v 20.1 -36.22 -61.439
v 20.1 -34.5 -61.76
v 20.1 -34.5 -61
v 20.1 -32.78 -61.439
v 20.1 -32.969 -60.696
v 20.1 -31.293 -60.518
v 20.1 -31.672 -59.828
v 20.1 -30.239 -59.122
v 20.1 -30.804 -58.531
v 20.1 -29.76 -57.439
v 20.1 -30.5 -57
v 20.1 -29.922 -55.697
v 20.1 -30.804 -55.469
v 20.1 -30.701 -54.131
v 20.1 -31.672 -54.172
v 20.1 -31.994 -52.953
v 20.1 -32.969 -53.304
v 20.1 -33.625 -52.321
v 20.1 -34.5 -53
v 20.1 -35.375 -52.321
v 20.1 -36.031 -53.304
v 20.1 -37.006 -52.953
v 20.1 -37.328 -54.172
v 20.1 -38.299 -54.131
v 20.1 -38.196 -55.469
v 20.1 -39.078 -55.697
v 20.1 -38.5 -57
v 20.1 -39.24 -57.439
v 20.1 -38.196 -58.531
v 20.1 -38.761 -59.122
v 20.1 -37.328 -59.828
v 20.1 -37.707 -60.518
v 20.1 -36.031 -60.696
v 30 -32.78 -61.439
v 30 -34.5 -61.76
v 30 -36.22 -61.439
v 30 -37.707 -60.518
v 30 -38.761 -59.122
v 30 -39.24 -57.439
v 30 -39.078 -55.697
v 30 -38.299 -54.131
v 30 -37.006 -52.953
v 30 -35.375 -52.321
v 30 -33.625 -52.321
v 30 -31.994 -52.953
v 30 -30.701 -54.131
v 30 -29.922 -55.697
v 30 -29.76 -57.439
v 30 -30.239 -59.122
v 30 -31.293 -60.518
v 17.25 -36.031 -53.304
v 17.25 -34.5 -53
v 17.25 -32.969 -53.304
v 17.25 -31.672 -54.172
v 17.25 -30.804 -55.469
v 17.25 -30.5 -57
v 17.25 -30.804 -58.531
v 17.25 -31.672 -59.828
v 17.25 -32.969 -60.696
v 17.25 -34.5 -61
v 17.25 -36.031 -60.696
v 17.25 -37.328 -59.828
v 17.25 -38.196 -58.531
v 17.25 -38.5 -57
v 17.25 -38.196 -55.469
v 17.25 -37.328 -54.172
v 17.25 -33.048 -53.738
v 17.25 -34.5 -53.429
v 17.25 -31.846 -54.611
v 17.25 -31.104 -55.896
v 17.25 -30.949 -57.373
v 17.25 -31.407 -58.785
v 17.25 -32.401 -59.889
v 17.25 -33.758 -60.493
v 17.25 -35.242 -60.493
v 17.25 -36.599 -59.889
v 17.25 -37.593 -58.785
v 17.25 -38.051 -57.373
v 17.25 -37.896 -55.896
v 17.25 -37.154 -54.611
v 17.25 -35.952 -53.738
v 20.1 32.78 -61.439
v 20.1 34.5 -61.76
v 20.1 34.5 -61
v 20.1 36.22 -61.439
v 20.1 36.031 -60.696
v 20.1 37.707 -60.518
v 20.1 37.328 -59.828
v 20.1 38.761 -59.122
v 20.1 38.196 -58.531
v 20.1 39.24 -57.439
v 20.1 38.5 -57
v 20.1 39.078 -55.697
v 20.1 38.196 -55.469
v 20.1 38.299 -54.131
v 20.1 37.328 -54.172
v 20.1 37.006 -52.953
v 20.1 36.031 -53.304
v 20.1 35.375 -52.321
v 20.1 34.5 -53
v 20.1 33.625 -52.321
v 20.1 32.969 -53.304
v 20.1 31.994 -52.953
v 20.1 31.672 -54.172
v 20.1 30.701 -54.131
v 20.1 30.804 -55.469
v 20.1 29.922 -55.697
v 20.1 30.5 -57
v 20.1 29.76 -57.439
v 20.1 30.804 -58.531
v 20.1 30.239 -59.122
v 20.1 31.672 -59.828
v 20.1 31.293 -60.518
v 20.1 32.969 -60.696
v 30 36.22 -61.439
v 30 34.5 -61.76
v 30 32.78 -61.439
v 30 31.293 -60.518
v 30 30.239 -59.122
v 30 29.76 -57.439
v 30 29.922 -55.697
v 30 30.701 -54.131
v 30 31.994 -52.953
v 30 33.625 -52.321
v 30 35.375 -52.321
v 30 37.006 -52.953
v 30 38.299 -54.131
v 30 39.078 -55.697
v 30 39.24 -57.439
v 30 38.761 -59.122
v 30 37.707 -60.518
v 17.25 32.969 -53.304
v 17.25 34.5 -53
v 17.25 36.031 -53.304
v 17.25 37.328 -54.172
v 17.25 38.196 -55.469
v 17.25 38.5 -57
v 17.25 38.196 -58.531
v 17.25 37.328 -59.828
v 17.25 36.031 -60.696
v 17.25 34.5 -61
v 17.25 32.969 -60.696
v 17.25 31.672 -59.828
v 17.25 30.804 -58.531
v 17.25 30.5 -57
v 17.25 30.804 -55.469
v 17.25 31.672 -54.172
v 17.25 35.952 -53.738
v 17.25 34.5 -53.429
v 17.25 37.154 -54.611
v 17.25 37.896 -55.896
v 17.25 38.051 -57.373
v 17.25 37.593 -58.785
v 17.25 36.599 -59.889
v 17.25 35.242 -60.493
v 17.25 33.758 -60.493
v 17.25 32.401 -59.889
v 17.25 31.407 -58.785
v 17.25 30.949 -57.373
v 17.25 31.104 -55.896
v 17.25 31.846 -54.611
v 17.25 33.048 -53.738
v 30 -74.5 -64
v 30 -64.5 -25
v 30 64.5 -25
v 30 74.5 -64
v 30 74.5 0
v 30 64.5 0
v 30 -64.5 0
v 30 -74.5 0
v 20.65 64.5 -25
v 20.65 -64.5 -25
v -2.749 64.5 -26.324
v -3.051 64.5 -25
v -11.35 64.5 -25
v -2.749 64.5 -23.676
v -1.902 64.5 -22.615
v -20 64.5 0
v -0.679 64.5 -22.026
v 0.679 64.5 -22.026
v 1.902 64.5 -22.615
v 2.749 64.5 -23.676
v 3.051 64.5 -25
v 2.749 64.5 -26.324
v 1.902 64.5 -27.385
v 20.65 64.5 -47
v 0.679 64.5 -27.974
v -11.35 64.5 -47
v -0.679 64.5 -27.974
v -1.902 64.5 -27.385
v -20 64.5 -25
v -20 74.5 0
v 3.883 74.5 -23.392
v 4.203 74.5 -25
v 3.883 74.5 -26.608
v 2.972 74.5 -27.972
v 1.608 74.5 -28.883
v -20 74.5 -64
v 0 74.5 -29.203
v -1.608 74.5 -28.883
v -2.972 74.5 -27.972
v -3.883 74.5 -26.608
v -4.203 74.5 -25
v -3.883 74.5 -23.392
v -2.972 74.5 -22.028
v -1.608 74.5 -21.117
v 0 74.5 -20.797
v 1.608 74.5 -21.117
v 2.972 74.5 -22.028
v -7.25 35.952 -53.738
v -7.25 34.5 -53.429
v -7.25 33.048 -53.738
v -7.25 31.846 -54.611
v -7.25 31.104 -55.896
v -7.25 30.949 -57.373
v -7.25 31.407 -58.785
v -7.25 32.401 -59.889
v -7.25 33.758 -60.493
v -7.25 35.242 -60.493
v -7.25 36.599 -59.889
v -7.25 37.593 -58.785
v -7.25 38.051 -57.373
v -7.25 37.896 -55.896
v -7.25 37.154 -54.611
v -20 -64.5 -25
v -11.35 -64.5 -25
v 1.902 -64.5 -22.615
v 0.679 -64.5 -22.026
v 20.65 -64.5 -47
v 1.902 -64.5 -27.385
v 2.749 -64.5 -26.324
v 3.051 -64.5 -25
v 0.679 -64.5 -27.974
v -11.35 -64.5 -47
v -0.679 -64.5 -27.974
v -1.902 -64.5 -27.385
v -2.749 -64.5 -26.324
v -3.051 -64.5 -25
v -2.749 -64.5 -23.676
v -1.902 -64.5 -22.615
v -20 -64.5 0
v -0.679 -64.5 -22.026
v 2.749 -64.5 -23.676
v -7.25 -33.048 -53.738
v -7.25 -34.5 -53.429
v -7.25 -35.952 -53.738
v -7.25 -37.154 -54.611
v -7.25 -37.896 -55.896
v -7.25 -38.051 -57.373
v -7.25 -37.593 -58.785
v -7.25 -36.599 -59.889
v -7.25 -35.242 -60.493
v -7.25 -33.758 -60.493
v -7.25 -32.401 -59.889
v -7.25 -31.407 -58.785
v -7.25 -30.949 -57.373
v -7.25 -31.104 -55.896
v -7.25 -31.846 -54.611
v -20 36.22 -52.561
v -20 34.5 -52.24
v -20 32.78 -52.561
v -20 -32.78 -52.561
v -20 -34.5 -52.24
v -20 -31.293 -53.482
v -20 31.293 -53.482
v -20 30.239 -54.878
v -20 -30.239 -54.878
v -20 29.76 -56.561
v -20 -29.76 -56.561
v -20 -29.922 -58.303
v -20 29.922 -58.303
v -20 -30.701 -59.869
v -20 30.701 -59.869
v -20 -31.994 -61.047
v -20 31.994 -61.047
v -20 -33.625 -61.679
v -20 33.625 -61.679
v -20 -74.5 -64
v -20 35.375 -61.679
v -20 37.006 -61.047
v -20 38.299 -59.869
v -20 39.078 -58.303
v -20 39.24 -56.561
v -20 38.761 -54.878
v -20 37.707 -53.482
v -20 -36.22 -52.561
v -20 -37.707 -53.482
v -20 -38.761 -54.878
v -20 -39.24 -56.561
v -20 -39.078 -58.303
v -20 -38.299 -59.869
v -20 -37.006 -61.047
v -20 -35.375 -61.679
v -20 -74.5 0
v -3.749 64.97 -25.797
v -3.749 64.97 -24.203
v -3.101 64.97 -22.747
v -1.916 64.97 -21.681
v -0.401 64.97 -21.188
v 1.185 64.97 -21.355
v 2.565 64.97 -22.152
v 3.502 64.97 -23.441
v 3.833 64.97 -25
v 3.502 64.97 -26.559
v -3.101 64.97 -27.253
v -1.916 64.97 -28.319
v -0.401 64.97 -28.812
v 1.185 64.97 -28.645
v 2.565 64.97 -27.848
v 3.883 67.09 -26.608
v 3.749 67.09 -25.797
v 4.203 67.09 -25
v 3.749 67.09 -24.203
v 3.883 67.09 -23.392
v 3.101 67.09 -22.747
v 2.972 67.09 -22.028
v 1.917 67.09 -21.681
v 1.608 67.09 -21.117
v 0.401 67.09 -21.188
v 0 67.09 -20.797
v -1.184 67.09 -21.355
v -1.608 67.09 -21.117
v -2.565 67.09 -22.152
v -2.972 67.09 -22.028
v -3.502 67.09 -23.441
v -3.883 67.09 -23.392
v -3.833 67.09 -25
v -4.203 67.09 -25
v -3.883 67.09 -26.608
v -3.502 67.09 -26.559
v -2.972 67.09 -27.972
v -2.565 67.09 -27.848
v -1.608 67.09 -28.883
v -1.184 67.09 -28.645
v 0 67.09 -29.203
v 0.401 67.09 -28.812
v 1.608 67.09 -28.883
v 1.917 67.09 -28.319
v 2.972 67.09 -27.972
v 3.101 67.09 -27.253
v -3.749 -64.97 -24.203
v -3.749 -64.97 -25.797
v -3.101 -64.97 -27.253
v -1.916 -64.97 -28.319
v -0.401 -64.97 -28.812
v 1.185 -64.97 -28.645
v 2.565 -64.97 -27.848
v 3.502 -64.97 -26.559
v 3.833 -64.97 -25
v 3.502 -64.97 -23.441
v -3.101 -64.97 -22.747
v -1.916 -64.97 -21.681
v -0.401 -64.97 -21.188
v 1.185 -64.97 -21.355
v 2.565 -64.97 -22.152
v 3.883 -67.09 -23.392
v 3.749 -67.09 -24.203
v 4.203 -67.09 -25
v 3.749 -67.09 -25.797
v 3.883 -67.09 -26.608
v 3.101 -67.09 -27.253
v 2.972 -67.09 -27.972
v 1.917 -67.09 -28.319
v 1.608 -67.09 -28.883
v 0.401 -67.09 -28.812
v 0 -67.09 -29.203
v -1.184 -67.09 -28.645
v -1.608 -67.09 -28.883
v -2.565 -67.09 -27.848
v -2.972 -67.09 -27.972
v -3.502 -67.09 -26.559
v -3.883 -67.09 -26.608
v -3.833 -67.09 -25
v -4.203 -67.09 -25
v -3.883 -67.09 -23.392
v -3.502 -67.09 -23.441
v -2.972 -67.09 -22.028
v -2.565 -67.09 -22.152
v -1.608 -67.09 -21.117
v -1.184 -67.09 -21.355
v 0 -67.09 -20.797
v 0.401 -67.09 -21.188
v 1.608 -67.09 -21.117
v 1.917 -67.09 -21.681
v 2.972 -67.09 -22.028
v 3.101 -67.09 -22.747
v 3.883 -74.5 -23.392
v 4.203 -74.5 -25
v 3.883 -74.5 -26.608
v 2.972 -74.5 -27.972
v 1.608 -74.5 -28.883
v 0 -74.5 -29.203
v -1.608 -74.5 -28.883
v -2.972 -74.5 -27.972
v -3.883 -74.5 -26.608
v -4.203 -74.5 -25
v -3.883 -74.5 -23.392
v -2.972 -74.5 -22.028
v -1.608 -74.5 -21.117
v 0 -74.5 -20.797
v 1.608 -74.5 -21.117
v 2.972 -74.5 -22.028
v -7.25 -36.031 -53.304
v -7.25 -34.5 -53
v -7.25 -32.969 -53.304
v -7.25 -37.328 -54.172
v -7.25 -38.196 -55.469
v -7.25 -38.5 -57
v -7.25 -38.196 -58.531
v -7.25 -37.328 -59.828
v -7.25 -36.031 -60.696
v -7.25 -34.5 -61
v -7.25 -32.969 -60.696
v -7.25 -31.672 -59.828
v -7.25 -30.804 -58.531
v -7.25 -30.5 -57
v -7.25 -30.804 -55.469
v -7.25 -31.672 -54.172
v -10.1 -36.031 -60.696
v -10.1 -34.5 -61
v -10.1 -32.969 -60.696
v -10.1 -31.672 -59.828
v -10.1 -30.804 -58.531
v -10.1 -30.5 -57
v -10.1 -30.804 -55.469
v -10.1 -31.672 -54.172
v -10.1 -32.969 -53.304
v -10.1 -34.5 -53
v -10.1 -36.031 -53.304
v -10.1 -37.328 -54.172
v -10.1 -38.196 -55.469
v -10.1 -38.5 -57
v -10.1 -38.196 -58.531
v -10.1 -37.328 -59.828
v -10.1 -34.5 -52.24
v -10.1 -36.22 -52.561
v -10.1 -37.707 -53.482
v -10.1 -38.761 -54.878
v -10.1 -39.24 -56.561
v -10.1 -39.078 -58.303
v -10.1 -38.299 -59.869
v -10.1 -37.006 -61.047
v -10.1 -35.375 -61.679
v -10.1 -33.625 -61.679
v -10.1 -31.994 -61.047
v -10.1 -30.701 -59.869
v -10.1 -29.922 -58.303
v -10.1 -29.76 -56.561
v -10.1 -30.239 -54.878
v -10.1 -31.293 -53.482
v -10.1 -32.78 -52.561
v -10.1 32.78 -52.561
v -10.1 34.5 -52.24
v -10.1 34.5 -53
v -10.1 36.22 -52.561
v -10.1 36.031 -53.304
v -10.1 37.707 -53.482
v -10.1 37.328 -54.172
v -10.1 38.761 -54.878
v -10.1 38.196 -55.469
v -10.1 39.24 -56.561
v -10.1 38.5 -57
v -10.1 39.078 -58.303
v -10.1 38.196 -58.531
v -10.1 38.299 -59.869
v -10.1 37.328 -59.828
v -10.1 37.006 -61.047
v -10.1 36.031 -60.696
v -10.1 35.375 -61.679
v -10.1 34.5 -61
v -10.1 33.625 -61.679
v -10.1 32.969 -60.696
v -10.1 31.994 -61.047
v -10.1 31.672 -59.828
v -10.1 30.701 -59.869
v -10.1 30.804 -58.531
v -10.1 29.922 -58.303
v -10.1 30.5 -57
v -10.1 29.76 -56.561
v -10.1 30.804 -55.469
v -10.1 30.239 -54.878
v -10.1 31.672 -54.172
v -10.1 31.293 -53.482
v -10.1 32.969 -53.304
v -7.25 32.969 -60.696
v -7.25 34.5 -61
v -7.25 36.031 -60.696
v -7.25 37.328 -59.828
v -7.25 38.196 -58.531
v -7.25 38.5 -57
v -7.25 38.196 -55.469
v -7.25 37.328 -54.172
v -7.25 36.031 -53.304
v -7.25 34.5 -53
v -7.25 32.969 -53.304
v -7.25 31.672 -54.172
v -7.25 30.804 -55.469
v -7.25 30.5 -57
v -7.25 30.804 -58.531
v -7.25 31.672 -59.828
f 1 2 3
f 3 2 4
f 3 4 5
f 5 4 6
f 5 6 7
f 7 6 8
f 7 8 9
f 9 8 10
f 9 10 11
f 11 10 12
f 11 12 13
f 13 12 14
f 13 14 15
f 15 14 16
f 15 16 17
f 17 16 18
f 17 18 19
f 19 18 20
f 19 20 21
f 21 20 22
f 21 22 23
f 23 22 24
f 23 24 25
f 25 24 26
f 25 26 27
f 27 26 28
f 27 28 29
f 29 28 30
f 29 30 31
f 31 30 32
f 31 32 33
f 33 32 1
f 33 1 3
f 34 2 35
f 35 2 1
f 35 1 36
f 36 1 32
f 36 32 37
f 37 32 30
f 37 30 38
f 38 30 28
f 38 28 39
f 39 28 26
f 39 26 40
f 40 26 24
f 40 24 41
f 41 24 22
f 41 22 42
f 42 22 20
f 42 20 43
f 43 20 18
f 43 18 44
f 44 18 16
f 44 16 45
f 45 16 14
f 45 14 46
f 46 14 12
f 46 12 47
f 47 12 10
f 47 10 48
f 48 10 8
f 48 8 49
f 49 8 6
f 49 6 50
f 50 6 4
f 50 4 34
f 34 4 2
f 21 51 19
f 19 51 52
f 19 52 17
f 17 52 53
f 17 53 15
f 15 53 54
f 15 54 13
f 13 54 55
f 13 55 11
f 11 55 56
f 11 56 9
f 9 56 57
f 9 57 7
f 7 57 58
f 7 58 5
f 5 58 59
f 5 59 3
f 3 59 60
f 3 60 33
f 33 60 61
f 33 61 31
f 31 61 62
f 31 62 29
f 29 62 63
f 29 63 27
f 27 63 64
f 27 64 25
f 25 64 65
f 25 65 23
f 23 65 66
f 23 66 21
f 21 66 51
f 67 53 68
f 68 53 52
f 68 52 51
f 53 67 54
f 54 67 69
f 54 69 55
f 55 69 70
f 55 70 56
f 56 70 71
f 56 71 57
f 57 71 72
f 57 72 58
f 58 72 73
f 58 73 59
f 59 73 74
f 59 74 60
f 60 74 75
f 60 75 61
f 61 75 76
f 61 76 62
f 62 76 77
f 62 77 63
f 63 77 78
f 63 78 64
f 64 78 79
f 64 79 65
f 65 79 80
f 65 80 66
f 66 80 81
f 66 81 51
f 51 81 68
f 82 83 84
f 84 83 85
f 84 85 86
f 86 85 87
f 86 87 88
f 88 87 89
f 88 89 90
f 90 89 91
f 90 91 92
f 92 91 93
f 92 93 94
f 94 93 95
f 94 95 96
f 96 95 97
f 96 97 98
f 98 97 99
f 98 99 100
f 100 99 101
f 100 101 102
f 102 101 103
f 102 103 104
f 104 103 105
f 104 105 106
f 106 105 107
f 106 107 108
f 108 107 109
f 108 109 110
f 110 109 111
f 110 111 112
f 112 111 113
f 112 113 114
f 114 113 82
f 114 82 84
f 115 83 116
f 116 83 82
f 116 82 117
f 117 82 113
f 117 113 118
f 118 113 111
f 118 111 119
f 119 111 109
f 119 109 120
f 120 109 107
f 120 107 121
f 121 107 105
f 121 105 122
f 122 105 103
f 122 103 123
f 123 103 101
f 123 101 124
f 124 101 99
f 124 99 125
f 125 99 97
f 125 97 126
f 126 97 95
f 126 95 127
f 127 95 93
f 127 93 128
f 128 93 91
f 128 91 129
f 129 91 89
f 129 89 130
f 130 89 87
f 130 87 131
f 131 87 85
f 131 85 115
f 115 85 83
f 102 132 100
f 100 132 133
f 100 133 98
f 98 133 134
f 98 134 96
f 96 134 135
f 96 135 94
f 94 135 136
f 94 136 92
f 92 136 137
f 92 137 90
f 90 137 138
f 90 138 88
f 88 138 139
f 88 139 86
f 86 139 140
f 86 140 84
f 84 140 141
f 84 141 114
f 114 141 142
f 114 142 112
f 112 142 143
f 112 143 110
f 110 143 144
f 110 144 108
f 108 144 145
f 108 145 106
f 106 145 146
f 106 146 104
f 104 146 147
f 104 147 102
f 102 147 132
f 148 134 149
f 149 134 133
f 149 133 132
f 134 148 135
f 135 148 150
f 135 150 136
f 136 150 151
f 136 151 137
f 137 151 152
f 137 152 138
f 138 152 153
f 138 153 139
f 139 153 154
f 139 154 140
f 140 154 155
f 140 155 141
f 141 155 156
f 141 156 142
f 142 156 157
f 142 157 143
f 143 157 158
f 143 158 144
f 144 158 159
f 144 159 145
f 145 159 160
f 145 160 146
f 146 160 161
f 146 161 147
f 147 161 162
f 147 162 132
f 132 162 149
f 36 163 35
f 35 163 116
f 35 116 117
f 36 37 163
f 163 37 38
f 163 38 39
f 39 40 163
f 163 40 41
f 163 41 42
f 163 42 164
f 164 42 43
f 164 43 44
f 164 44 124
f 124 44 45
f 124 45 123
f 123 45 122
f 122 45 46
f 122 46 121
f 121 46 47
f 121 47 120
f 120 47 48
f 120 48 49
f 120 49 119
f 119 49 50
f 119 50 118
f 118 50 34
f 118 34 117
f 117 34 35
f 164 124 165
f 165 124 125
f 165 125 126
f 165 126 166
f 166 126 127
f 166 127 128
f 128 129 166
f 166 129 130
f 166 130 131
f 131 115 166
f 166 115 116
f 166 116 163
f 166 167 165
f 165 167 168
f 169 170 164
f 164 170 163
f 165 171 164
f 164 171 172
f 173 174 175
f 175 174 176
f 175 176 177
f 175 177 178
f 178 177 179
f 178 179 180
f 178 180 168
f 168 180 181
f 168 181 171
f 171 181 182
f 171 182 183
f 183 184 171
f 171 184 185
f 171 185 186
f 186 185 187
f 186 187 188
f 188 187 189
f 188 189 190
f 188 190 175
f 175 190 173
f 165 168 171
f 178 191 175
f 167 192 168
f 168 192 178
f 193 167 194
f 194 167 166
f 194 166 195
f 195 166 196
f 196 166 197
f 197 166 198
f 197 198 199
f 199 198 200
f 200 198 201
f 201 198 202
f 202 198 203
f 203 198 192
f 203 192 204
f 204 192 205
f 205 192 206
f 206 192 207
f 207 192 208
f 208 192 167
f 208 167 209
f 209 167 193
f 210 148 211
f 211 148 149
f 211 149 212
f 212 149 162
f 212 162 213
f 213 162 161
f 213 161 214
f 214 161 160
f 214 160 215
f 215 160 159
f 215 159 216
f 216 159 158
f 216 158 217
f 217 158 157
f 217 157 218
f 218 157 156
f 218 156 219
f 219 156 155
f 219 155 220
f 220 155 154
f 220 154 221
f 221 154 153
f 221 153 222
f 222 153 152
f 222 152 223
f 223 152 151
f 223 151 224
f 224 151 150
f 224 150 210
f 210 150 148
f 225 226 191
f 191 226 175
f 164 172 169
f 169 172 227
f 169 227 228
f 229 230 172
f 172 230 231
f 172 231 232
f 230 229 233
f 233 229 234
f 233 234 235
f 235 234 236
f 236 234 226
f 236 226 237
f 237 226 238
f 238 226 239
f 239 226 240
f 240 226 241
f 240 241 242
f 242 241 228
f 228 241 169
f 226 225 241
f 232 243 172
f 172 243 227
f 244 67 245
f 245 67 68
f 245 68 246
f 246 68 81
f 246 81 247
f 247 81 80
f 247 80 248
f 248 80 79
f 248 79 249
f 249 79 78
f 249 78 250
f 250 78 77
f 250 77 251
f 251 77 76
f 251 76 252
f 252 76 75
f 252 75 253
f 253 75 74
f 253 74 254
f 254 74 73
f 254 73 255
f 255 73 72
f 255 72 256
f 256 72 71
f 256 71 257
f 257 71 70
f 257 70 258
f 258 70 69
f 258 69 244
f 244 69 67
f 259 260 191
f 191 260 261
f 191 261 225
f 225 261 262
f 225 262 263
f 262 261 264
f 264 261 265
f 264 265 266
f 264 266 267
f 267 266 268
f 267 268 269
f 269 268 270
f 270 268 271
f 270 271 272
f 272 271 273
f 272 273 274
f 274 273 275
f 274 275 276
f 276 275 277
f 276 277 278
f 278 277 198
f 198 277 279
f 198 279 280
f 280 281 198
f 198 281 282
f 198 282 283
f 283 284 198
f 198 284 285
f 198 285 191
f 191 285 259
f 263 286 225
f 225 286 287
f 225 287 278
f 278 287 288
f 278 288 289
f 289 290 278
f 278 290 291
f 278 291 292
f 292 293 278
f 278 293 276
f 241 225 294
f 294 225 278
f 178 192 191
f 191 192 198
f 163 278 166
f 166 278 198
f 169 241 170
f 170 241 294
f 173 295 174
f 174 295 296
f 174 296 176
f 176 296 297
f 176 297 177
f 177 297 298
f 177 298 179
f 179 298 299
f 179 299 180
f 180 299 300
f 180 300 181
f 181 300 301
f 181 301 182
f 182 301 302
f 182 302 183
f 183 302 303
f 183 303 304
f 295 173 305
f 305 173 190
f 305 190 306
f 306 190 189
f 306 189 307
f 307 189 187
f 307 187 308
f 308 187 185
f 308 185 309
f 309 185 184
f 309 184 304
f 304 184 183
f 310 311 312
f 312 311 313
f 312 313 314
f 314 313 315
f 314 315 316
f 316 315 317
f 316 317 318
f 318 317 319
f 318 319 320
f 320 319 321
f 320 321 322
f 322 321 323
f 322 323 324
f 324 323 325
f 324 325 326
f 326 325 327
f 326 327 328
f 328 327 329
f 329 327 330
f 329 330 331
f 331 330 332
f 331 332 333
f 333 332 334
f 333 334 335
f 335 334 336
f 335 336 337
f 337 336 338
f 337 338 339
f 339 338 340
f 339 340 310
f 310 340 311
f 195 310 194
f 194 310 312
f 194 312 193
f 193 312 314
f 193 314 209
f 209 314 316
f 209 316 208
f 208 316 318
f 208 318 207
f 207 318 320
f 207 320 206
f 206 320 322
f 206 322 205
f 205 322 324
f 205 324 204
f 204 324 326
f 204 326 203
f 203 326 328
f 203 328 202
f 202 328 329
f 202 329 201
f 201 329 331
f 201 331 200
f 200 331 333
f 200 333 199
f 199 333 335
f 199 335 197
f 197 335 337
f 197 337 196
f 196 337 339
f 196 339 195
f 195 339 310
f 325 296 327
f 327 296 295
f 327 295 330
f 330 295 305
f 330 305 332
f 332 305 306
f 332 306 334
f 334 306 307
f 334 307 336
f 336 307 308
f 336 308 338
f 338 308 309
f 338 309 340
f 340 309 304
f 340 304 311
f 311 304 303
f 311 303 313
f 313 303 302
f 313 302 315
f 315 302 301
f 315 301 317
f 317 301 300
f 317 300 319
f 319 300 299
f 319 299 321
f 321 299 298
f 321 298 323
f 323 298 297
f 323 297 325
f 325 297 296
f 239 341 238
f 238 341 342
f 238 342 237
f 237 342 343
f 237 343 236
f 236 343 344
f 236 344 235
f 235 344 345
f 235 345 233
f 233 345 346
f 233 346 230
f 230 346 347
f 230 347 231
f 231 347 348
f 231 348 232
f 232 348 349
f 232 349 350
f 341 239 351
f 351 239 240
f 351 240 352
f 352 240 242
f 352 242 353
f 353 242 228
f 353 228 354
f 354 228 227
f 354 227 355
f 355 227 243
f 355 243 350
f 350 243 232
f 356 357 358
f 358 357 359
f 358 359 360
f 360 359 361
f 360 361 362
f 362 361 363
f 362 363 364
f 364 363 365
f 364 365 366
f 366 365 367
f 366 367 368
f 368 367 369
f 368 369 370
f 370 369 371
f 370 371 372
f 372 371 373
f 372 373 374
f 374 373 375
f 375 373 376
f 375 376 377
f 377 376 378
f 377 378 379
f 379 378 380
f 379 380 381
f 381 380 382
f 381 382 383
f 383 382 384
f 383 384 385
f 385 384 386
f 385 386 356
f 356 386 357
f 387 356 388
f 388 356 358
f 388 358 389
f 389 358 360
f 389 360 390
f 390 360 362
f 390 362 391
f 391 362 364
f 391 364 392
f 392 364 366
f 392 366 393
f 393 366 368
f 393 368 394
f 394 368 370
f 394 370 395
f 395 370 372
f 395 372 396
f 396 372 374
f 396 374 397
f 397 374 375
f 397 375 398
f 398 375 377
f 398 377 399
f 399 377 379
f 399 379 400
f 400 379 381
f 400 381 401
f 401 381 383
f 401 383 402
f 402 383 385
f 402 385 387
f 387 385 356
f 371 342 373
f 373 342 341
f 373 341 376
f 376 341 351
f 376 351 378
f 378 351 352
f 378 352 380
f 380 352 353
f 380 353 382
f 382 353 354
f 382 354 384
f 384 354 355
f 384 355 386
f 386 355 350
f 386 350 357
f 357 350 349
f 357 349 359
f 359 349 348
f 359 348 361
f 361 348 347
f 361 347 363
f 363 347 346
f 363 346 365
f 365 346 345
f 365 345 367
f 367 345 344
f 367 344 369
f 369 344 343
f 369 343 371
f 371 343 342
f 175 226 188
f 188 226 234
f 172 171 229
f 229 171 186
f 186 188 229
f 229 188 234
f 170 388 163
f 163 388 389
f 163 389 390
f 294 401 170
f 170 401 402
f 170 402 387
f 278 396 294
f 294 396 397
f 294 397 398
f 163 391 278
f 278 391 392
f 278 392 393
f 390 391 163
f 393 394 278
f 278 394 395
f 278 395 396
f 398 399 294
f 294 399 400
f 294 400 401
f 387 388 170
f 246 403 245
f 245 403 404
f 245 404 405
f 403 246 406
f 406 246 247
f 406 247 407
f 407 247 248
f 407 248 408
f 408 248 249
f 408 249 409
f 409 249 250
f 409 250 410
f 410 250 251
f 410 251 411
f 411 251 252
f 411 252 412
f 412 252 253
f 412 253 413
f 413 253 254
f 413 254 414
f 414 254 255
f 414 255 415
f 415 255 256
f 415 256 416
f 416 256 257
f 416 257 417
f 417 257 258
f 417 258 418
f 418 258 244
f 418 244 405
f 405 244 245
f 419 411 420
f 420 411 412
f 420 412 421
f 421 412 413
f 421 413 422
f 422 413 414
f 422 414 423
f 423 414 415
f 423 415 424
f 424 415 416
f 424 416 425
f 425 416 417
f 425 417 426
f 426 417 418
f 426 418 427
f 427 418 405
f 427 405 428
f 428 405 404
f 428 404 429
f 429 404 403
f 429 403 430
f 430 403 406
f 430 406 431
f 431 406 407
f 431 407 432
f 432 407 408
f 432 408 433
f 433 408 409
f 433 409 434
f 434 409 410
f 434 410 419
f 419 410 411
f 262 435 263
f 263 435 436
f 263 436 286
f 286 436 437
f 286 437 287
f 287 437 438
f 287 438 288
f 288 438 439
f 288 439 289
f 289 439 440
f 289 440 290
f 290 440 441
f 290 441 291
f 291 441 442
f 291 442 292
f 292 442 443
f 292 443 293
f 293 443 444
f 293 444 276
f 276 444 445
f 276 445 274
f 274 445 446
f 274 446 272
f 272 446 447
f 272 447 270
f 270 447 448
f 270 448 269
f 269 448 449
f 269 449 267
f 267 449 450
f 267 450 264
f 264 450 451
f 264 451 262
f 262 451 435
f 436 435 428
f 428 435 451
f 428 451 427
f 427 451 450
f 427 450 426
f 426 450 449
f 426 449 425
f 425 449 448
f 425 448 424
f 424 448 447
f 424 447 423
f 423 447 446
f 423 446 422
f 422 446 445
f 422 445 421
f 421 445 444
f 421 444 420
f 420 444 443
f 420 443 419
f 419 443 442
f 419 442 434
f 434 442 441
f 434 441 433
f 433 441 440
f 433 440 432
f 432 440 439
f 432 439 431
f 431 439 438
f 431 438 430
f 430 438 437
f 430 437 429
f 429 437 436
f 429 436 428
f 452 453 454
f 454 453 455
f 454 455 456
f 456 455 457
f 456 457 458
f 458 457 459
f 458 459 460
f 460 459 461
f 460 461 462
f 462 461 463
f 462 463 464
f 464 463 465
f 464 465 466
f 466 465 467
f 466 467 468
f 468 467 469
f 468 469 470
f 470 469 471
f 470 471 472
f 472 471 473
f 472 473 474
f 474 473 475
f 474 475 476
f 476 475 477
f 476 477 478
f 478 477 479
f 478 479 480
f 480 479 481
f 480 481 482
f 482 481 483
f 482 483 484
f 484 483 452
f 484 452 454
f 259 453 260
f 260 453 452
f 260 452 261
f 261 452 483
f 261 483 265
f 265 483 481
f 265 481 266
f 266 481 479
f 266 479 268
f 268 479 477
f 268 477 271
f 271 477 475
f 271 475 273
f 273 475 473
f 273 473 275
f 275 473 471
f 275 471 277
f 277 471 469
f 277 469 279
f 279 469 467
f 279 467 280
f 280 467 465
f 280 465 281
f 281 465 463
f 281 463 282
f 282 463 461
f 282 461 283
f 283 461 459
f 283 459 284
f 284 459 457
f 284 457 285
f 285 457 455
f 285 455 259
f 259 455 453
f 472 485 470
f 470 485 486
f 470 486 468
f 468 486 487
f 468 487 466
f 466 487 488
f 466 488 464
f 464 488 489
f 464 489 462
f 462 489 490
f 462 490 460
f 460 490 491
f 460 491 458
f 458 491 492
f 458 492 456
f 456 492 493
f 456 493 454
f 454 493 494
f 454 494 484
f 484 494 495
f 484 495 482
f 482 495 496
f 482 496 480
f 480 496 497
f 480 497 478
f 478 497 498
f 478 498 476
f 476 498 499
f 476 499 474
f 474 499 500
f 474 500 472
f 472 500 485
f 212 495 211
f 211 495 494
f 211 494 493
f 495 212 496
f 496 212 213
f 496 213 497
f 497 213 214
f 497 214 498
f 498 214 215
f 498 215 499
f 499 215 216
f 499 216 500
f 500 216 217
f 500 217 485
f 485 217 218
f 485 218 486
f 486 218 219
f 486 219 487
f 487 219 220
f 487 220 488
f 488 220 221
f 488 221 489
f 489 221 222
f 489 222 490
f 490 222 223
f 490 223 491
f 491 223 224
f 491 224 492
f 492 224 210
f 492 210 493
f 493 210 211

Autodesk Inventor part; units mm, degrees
ref_plane "XZ Plane" through (0, 0, 0) normal (0, 1, 0) x (-1, 0, 0)
ref_plane "XY Plane" through (0, 0, 0) normal (0, 0, 1) x (1, 0, 0)
sketch "Sketch1" plane through (0, 0, 0) normal (0, 0, 1) x (1, 0, 0)
  line L0 (-111.35, -74.5) -> (111.35, -74.5)
  line L1 (111.35, -74.5) -> (111.35, 74.5)
  line L2 (111.35, 74.5) -> (-111.35, 74.5)
  line L3 (-111.35, 74.5) -> (-111.35, -74.5)
  line L4 (-111.35, -74.5) -> (111.35, 74.5) construction
  line L5 (111.35, -74.5) -> (-111.35, 74.5) construction
  point P0 (0, 0)
  dimension "d0" = 222.7
  dimension "d1" = 149
extrude "MainInnerBodyExtrusion" add sketch "Sketch1" against normal blind 50
sketch "Sketch3" plane through (0, 0, 0) normal (0, 0, 1) x (1, 0, 0)
  line L0 (36.65, -27) -> (95.65, -27)
  line L1 (95.65, -27) -> (95.65, 27)
  line L2 (95.65, 27) -> (36.65, 27)
  line L3 (36.65, 27) -> (36.65, -27)
  line L4 (36.65, -27) -> (95.65, 27) construction
  line L5 (95.65, -27) -> (36.65, 27) construction
  line L6 (111.35, -74.5) -> (111.35, 74.5) projected
  line L7 (0, 0) -> (111.35, 0) construction
  line L8 (-111.35, -74.5) -> (-111.35, 74.5) construction
  line L9 (-111.35, 74.5) -> (-111.35, -74.5) projected
  point P0 (66.15, 0)
  point P1 (66.15, 0)
  dimension "d5" = 15.7
  dimension "d6" = 54
  dimension "d7" = 59
extrude "HoleForCamerabase" cut sketch "Sketch3" against normal blind 47
sketch "Sketch4" plane through (0, 0, 0) normal (0, 0, 1) x (1, 0, 0)
  line L0 (0, 0) -> (-111.35, 0) construction
  line L1 (-111.35, -74.5) -> (-111.35, 74.5) construction
  line L2 (-108.35, -31) -> (-92.35, -31)
  line L3 (-92.35, -31) -> (-92.35, 31)
  line L4 (-92.35, 31) -> (-108.35, 31)
  line L5 (-108.35, 31) -> (-108.35, -31)
  line L6 (-108.35, -31) -> (-92.35, 31) construction
  line L7 (-92.35, -31) -> (-108.35, 31) construction
  point P0 (-100.35, 0)
  dimension "d13" = 16
  dimension "d14" = 62
  dimension "d15" = 3
extrude "HoleForFan" cut sketch "Sketch4" against normal blind 47
sketch "Sketch6" plane through (0, 0, 0) normal (0, 0, 1) x (1, 0, 0)
  line L0 (-111.35, -74.5) -> (-111.35, 74.5) construction
  line L1 (-111.35, 0) -> (111.35, 0) construction
  line L2 (111.35, 74.5) -> (111.35, -74.5) construction
  line L3 (-11.35, -64.5) -> (20.65, -64.5)
  line L4 (20.65, -64.5) -> (20.65, 64.5)
  line L5 (20.65, 64.5) -> (-11.35, 64.5)
  line L6 (-11.35, 64.5) -> (-11.35, -64.5)
  line L7 (-11.35, -64.5) -> (20.65, 64.5) construction
  line L8 (20.65, -64.5) -> (-11.35, 64.5) construction
  line L9 (36.65, -27) -> (36.65, 27) projected
  point P0 (0, 0)
  point P1 (4.65, 0)
  dimension "d20" = 32
  dimension "d21" = 129
  dimension "d88" = 16
extrude "HoleForPi" cut sketch "Sketch6" against normal blind 47
sketch "Sketch7" plane through (0, 0, 0) normal (0, 0, 1) x (1, 0, 0)
  line L0 (0, 0) -> (-111.35, 0) construction
  line L1 (-111.35, 74.5) -> (-111.35, -74.5) construction
  line L2 (-76.35, -59) -> (-27.35, -59)
  line L3 (-27.35, -59) -> (-27.35, 59)
  line L4 (-27.35, 59) -> (-76.35, 59)
  line L5 (-76.35, 59) -> (-76.35, -59)
  line L6 (-76.35, -59) -> (-27.35, 59) construction
  line L7 (-27.35, -59) -> (-76.35, 59) construction
  line L8 (-11.35, -64.5) -> (-11.35, 64.5) projected
  line L9 (-92.35, 31) -> (-92.35, -31) construction
  point P0 (-51.85, 0)
  dimension "d25" = 16
  dimension "d26" = 49
  dimension "d27" = 118
extrude "HoleForPoeAdapter" cut sketch "Sketch7" against normal blind 47
sketch "Sketch10" plane through (0, 0, 0) normal (0, 0, 1) x (1, 0, 0)
  line L0 (39.35, 36.5) -> (108.35, 36.5)
  line L1 (108.35, 36.5) -> (108.35, 64.5)
  line L2 (108.35, 64.5) -> (39.35, 64.5)
  line L3 (39.35, 64.5) -> (39.35, 36.5)
  line L4 (39.35, 36.5) -> (108.35, 64.5) construction
  line L5 (108.35, 36.5) -> (39.35, 64.5) construction
  line L6 (111.35, 74.5) -> (-111.35, 74.5) projected
  line L7 (111.35, -74.5) -> (111.35, 74.5) projected
  point P0 (0, 0)
  point P1 (73.85, 50.5)
  point P2 (94.85, 8.5)
  point P3 (108.35, 50.5)
  dimension "d36" = 69
  dimension "d37" = 28
  dimension "d85" = 3
extrude "HoleForThermister" cut sketch "Sketch10" against normal blind 47
sketch "Sketch11" plane through (0, 0, 0) normal (0, 0, 1) x (1, 0, 0)
  line L0 (58.35, -64.5) -> (108.35, -64.5)
  line L1 (108.35, -64.5) -> (108.35, -47.5)
  line L2 (108.35, -47.5) -> (58.35, -47.5)
  line L3 (58.35, -47.5) -> (58.35, -64.5)
  line L4 (58.35, -64.5) -> (108.35, -47.5) construction
  line L5 (108.35, -64.5) -> (58.35, -47.5) construction
  line L6 (111.35, -74.5) -> (111.35, 74.5) projected
  line L7 (-111.35, -74.5) -> (111.35, -74.5) projected
  line L8 (95.65, -27) -> (36.65, -27) projected
  line L9 (20.65, 64.5) -> (20.65, -64.5) projected
  point P0 (0, 0)
  point P1 (83.35, -56)
  point P2 (94.85, -8.5)
  point P3 (83.35, -47.5)
  point P4 (58.35, -56)
  point P5 (111.35, 74.5)
  dimension "d42" = 50
  dimension "d43" = 17
  dimension "d86" = 3
  dimension "d87" = 10
extrude "HoleForSensor" cut sketch "Sketch11" against normal blind 31.5
sketch "Sketch15" plane through (-111.35, -74.5, 0) normal (-1, 0, 0) x (0, 0, 1)
  line L0 (0, 149) -> (0, 0) projected
  line L1 (0, 149) -> (-50, 149) projected
  line L2 (-50, 0) -> (-50, 149) projected
  line L3 (0, 0) -> (-50, 0) projected
  line L4 (0, 0) -> (0, 149) projected
  line L5 (0, 101.5) -> (0, 47.5) projected
  line L6 (0, 74.5) -> (-30, 74.5) construction
  line L7 (0, 76.5) -> (-29.9333, 76.5)
  line L8 (0, 84.5) -> (-28.2843, 84.5)
  line L9 (0, 80.5) -> (-29.3939, 80.5)
  line L10 (0, 76.5) -> (0, 74.5)
  line L11 (0, 88.5) -> (-26.533, 88.5)
  line L12 (0, 92.5) -> (-24, 92.5)
  line L13 (-20.5913, 97.5) -> (0, 97.5)
  line L14 (-14.9666, 101.5) -> (0, 101.5)
  line L15 (0, 84.5) -> (0, 80.5)
  line L16 (0, 101.5) -> (0, 97.5)
  line L17 (0, 92.5) -> (0, 88.5)
  line L18 (0, 72.5) -> (-29.9333, 72.5)
  line L19 (0, 64.5) -> (-28.2843, 64.5)
  line L20 (0, 68.5) -> (-29.3939, 68.5)
  line L21 (0, 72.5) -> (0, 74.5)
  line L22 (0, 60.5) -> (-26.533, 60.5)
  line L23 (0, 56.5) -> (-24, 56.5)
  line L24 (-20.5913, 51.5) -> (0, 51.5)
  line L25 (-14.9666, 47.5) -> (0, 47.5)
  line L26 (0, 64.5) -> (0, 68.5)
  line L27 (0, 56.5) -> (0, 60.5)
  line L28 (0, 47.5) -> (0, 51.5)
  line L29 (0, 72.5) -> (0, 76.5)
  line L30 (0, 80.5) -> (0, 84.5)
  line L31 (0, 88.5) -> (0, 92.5)
  line L32 (0, 97.5) -> (0, 149)
  arc A0 (-28.2843, 84.5) -> (-29.3939, 80.5) centre (0, 74.5) ccw
  arc A1 (-14.9666, 101.5) -> (-20.5913, 97.5) centre (0, 74.5) ccw
  arc A2 (-24, 92.5) -> (-26.533, 88.5) centre (0, 74.5) ccw
  arc A3 (-29.9333, 76.5) -> (-29.9333, 72.5) centre (0, 74.5) ccw
  arc A4 (-29.3939, 68.5) -> (-28.2843, 64.5) centre (0, 74.5) ccw
  arc A5 (-26.533, 60.5) -> (-24, 56.5) centre (0, 74.5) ccw
  arc A6 (-20.5913, 51.5) -> (-14.9666, 47.5) centre (0, 74.5) ccw
  point P0 (0, 82)
  point P1 (0, 67.0167)
  point P2 (0, 4.25)
  point P3 (-10.2956, 97.5)
  point P4 (0, 47.5)
  point P5 (0, 51.5)
  point P6 (0, 56.5)
  point P7 (0, 60.5)
  point P8 (0, 64.5)
  point P9 (0, 68.5)
  point P10 (0, 72.5)
  point P11 (0, 80.5)
  point P12 (0, 84.5)
  point P13 (0, 88.5)
  point P14 (0, 92.5)
  point P15 (0, 97.5)
  point P16 (0, 101.5)
  dimension "d69" = 2
  dimension "d71" = 4
  dimension "d72" = 4
  dimension "d73" = 4
  dimension "d75" = 4
  dimension "d142" = 30
extrude "SlotsForRearFan" cut sketch "Sketch15" against normal up to surface (3 mm away) contours L0 L13 A1 L14 | L0 L11 A2 L12 | L25 A6 L24 L0 | L0 L9 A0 L8 | L23 A5 L22 L0 | L0 L18 A3 L7 | L19 A4 L20 L0
sketch "Sketch16" plane through (0, 0, -47) normal (0, 0, 1) x (1, 0, 0)
  line L0 (95.65, 27) -> (95.65, -27) projected
  line L1 (80.15, 10.765) -> (80.15, -11.235) construction
  line L2 (78.65, 10.765) -> (78.65, -11.235)
  line L3 (75.65, -11.235) -> (75.65, 10.765)
  line L4 (72.65, 8.7746) -> (72.65, -9.2446)
  line L5 (69.65, 3.5785) -> (69.65, -4.0485)
  line L6 (81.65, 10.765) -> (81.65, -11.235)
  line L7 (84.65, -11.235) -> (84.65, 10.765)
  line L8 (87.65, 8.7746) -> (87.65, -9.2446)
  line L9 (90.65, 3.5785) -> (90.65, -4.0485)
  line L10 (73.7991, 10.765) -> (75.65, 10.765)
  line L11 (75.65, -11.235) -> (73.7991, -11.235)
  line L12 (73.7991, -11.235) -> (72.65, -9.2446)
  line L13 (69.65, -4.0485) -> (67.4483, -0.235)
  line L14 (67.4483, -0.235) -> (69.65, 3.5785)
  line L15 (72.65, 8.7746) -> (73.7991, 10.765)
  line L16 (78.65, 10.765) -> (81.65, 10.765)
  line L17 (84.65, 10.765) -> (86.5009, 10.765)
  line L18 (86.5009, -11.235) -> (84.65, -11.235)
  line L19 (81.65, -11.235) -> (78.65, -11.235)
  line L20 (92.8517, -0.235) -> (90.65, -4.0485)
  line L21 (87.65, -9.2446) -> (86.5009, -11.235)
  line L22 (86.5009, 10.765) -> (87.65, 8.7746)
  line L23 (90.65, 3.5785) -> (92.8517, -0.235)
  point P0 (0, 0)
  point P1 (80.15, -0.235)
  point P2 (69.65, -0.235)
  dimension "d78" = 15.5
  dimension "d89" = 1.5
  dimension "d90" = 3
  dimension "d91" = 3
  dimension "d92" = 3
extrude "VentForCamera" cut sketch "Sketch16" against normal through all
sketch "Sketch18" plane through (111.35, -74.5, 0) normal (1, 0, 0) x (0, 0, -1)
  line L0 (0, 74.5) -> (29.6767, 74.5) construction
  arc A0 (24, 66.5) -> (24, 82.5) centre (24, 74.5) ccw
  line L1 (0, 0) -> (0, 149) projected
  line L2 (24, 82.5) -> (0, 82.5)
  line L3 (24, 66.5) -> (0, 66.5)
  line L4 (0, 82.5) -> (0, 66.5)
  point P0 (0, 74.5)
  dimension "d97" = 16
  dimension "d137" = 24
extrude "HoleForLens" cut sketch "Sketch18" against normal up to surface (15.7 mm away)
sketch "Sketch23" plane through (0, 0, 0) normal (0, 0, 1) x (1, 0, 0)
  line L0 (-106.35, -69.5) -> (106.35, -69.5) construction
  line L1 (106.35, -69.5) -> (106.35, 69.5) construction
  line L2 (106.35, 69.5) -> (-106.35, 69.5) construction
  line L3 (-106.35, 69.5) -> (-106.35, -69.5) construction
  line L4 (-106.35, -69.5) -> (106.35, 69.5) construction
  line L5 (106.35, -69.5) -> (-106.35, 69.5) construction
  line L6 (111.35, -74.5) -> (111.35, -8) projected
  line L7 (111.35, 74.5) -> (-111.35, 74.5) projected
  line L8 (-111.35, -27) -> (-111.35, -74.5) projected
  line L9 (-111.35, 74.5) -> (-111.35, 27) projected
  line L10 (111.35, 8) -> (111.35, 74.5) projected
  point P0 (0, 0)
  point P1 (35.15, -69.5)
  point P2 (-35.15, -69.5)
  point P3 (-35.15, 69.5)
  point P4 (35.15, 69.5)
  dimension "d106" = 5
  dimension "d108" = 5
  dimension "d222" = 76.2
  dimension "d223" = 76.2
  dimension "d224" = 76.2
  dimension "d225" = 76.2
hole "Hole for 6-32 Insert" at (-106.35, 69.5, 0) at (106.35, 69.5, 0) at (106.35, -69.5, 0) at (-106.35, -69.5, 0) at (-35.15, -69.5, 0) at (35.15, -69.5, 0) at (-35.15, 69.5, 0) at (35.15, 69.5, 0) direction (0, 0, -1) diameter 4.7 depth 7.2 tip angle 118 counterbore diameter 5.54 counterbore depth 5.55
hole "Screw hole for 6-32 screw" at (-106.35, -69.5, 0) at (106.35, -69.5, 0) at (106.35, 69.5, 0) at (-106.35, 69.5, 0) direction (0, 0, -1) diameter 3.797 depth 15 tip angle 118 clearance for "Hex Machine Screw" size "#6" standard "Ansi Unified Screw Threads"
sketch "Sketch24" plane through (-111.35, -74.5, 0) normal (0, -1, 0) x (1, 0, 0)
  line L0 (0, -50) -> (222.7, -50) construction
  line L1 (222.7, 0) -> (207, 0) construction
  line L2 (0, 0) -> (0, -50) projected
  line L3 (111.3501, -25) -> (0, -25) construction
  line L4 (111.3501, -25) -> (222.7, -24.84) construction
  line L5 (222.7, 0) -> (222.7, -50) construction
  point P0 (111.35, 0)
  dimension "d226" = 25
  dimension "d227" = 111.3501
hole "Side hole for 1-4 20 insert" at (0.0001, -74.5, -25) direction (0, 1, 0) diameter 7.666 depth 9.53 tip angle 118 counterbore diameter 8.406 counterbore depth 7.41 clearance for "Hex Machine Screw" size "1/4" standard "Ansi Unified Screw Threads"
mirror "Mirror for side insert" about plane through (0, 0, 0) normal (0, 1, 0) of "Side hole for 1-4 20 insert"
sketch "Sketch25" plane through (0, 0, 0) normal (0, 0, 1) x (1, 0, 0)
  line L0 (111.35, 74.5) -> (-111.35, 74.5) projected
  line L1 (-111.35, 74.5) -> (-111.35, 27) projected
  line L2 (-111.35, -74.5) -> (111.35, -74.5) projected
  line L3 (81.65, -11.235) -> (78.65, -11.235) projected
  line L4 (78.65, -11.235) -> (78.65, 10.765) projected
  line L5 (78.65, 10.765) -> (81.65, 10.765) projected
  line L6 (81.65, 10.765) -> (81.65, -11.235) projected
  line L7 (73.7991, 10.765) -> (75.65, 10.765) projected
  line L8 (75.65, 10.765) -> (75.65, -11.235) projected
  line L9 (75.65, -11.235) -> (73.7991, -11.235) projected
  line L10 (73.7991, -11.235) -> (72.65, -9.2446) projected
  line L11 (72.65, -9.2446) -> (72.65, 8.7746) projected
  line L12 (72.65, 8.7746) -> (73.7991, 10.765) projected
  line L13 (87.65, 8.7746) -> (87.65, -9.2446) projected
  line L14 (87.65, -9.2446) -> (86.5009, -11.235) projected
  line L15 (86.5009, -11.235) -> (84.65, -11.235) projected
  line L16 (84.65, -11.235) -> (84.65, 10.765) projected
  line L17 (84.65, 10.765) -> (86.5009, 10.765) projected
  line L18 (86.5009, 10.765) -> (87.65, 8.7746) projected
  line L19 (69.65, 3.5785) -> (69.65, -4.0485) projected
  line L20 (69.65, -4.0485) -> (67.4483, -0.235) projected
  line L21 (67.4483, -0.235) -> (69.65, 3.5785) projected
  line L22 (92.8517, -0.235) -> (90.65, -4.0485) projected
  line L23 (90.65, -4.0485) -> (90.65, 3.5785) projected
  line L24 (90.65, 3.5785) -> (92.8517, -0.235) projected
  line L25 (95.65, 27) -> (95.65, -27) projected
  line L26 (36.65, 27) -> (95.65, 27) projected
  line L27 (36.65, -27) -> (36.65, 27) projected
  line L28 (95.65, -27) -> (36.65, -27) projected
  line L29 (111.35, -74.5) -> (111.35, -8) projected
  line L30 (111.35, 8) -> (111.35, 74.5) projected
  line L31 (-108.35, -64.5) -> (108.35, -64.5)
  line L32 (108.35, -64.5) -> (108.35, 64.5)
  line L33 (108.35, 64.5) -> (-108.35, 64.5)
  line L34 (-108.35, 64.5) -> (-108.35, -64.5)
  line L35 (-108.35, -64.5) -> (108.35, 64.5) construction
  line L36 (108.35, -64.5) -> (-108.35, 64.5) construction
  line L37 (-27.35, 59) -> (-27.35, -59) projected
  point P0 (0, 0)
  dimension "d138" = 10
  dimension "d139" = 3
extrude "Extrusion18" cut sketch "Sketch25" against normal blind 25 contours L34 L33 L32 L31
sketch "Sketch26" plane through (-111.35, -74.5, -50) normal (-1, 0, 0) x (0, 0, 1)
  arc A0 (50, 124) -> (50, 134) centre (50, 129) ccw
  circle A1 centre (50, 129) radius 5
  point P0 (50, 74.5)
  point P1 (50, 124)
extrude "HoleForPowerWire" cut sketch "Sketch26" against normal up to surface (3 mm away)
sketch "Sketch37" plane through (-111.35, -74.5, -50) normal (-1, 0, 0) x (0, 0, 1)
  arc A0 (50, 134) -> (50, 124) centre (50, 129) ccw projected
  line L0 (50, 149) -> (50, 134) projected
  line L1 (50, 149) -> (0, 149) projected
  line L2 (0, 0) -> (0, 149) projected
  line L3 (50, 0) -> (0, 0) projected
  line L4 (50, 47.5) -> (50, 0) projected
  line L5 (50, 47.5) -> (35.0334, 47.5) projected
  arc A1 (29.4087, 51.5) -> (35.0334, 47.5) centre (50, 74.5) ccw projected
  line L6 (29.4087, 51.5) -> (50, 51.5) projected
  line L7 (50, 56.5) -> (50, 51.5) projected
  line L8 (50, 56.5) -> (26, 56.5) projected
  arc A2 (23.467, 60.5) -> (26, 56.5) centre (50, 74.5) ccw projected
  line L9 (23.467, 60.5) -> (50, 60.5) projected
  line L10 (50, 64.5) -> (50, 60.5) projected
  line L11 (50, 64.5) -> (21.7157, 64.5) projected
  arc A3 (20.6061, 68.5) -> (21.7157, 64.5) centre (50, 74.5) ccw projected
  line L12 (20.6061, 68.5) -> (50, 68.5) projected
  line L13 (50, 72.5) -> (50, 68.5) projected
  line L14 (50, 72.5) -> (20.0667, 72.5) projected
  arc A4 (20.0667, 76.5) -> (20.0667, 72.5) centre (50, 74.5) ccw projected
  line L15 (20.0667, 76.5) -> (50, 76.5) projected
  line L16 (50, 80.5) -> (50, 76.5) projected
  line L17 (50, 80.5) -> (20.6061, 80.5) projected
  arc A5 (21.7157, 84.5) -> (20.6061, 80.5) centre (50, 74.5) ccw projected
  line L18 (21.7157, 84.5) -> (50, 84.5) projected
  line L19 (50, 88.5) -> (50, 84.5) projected
  line L20 (50, 88.5) -> (23.467, 88.5) projected
  arc A6 (26, 92.5) -> (23.467, 88.5) centre (50, 74.5) ccw projected
  line L21 (26, 92.5) -> (50, 92.5) projected
  line L22 (50, 97.5) -> (50, 92.5) projected
  line L23 (50, 97.5) -> (29.4087, 97.5) projected
  arc A7 (35.0334, 101.5) -> (29.4087, 97.5) centre (50, 74.5) ccw projected
  line L24 (35.0334, 101.5) -> (50, 101.5) projected
  line L25 (50, 124) -> (50, 101.5) projected
  line L26 (0, 149) -> (50, 149)
  line L27 (50, 149) -> (50, 0)
  line L28 (50, 0) -> (0, 0)
  line L29 (0, 0) -> (0, 149)
extrude "Extrusion22" add sketch "Sketch37" along normal blind 2 contours A0 L25 L24 A7 L23 L22 L21 A6 L20 L19 L18 A5 L17 L16 L15 A4 L14 L13 L12 A3 L11 L10 L9 A2 L8 L7 L6 A1 L5 L4 L3 L2 L1 L0
sketch "Sketch38" plane through (111.35, -74.5, -50) normal (1, 0, 0) x (0, 0, -1)
  line L0 (-50, 82.5) -> (-50, 149) projected
  line L1 (-50, 0) -> (0, 0) projected
  line L2 (0, 149) -> (0, 0) projected
  line L3 (-50, 149) -> (0, 149) projected
  line L4 (-50, 0) -> (-50, 66.5) projected
  arc A0 (-50, 65.1192) -> (-50, 83.8808) centre (-29, 74.5) ccw projected
  line L5 (-26, 66.5) -> (-50, 66.5) projected
  arc A1 (-26, 66.5) -> (-26, 82.5) centre (-26, 74.5) ccw projected
  line L6 (-50, 82.5) -> (-26, 82.5) projected
  line L7 (-26, 66.5) -> (-50, 66.5) projected
  line L8 (-50, 82.5) -> (-26, 82.5) projected
  arc A2 (-26, 66.5) -> (-26, 82.5) centre (-26, 74.5) ccw projected
  point P0 (-50, 74.5)
extrude "Extrusion23" add sketch "Sketch38" along normal blind 2
sketch "Sketch39" plane through (0, 0, -50) normal (0, 0, -1) x (-1, 0, 0)
  line L0 (-78.65, -11.235) -> (-81.65, -11.235) projected
  line L1 (-81.65, -11.235) -> (-81.65, 10.765) projected
  line L2 (-81.65, 10.765) -> (-78.65, 10.765) projected
  line L3 (-78.65, 10.765) -> (-78.65, -11.235) projected
  line L4 (-75.65, 10.765) -> (-73.7991, 10.765) projected
  line L5 (-73.7991, 10.765) -> (-72.65, 8.7746) projected
  line L6 (-72.65, 8.7746) -> (-72.65, -9.2446) projected
  line L7 (-72.65, -9.2446) -> (-73.7991, -11.235) projected
  line L8 (-73.7991, -11.235) -> (-75.65, -11.235) projected
  line L9 (-75.65, -11.235) -> (-75.65, 10.765) projected
  line L10 (-87.65, -9.2446) -> (-87.65, 8.7746) projected
  line L11 (-87.65, 8.7746) -> (-86.5009, 10.765) projected
  line L12 (-86.5009, 10.765) -> (-84.65, 10.765) projected
  line L13 (-84.65, 10.765) -> (-84.65, -11.235) projected
  line L14 (-84.65, -11.235) -> (-86.5009, -11.235) projected
  line L15 (-86.5009, -11.235) -> (-87.65, -9.2446) projected
  line L16 (-69.65, -4.0485) -> (-69.65, 3.5785) projected
  line L17 (-69.65, 3.5785) -> (-67.4483, -0.235) projected
  line L18 (-67.4483, -0.235) -> (-69.65, -4.0485) projected
  line L19 (-90.65, -4.0485) -> (-92.8517, -0.235) projected
  line L20 (-92.8517, -0.235) -> (-90.65, 3.5785) projected
  line L21 (-90.65, 3.5785) -> (-90.65, -4.0485) projected
  line L22 (113.35, -74.5) -> (-113.35, -74.5) projected
  line L23 (113.35, 74.5) -> (113.35, -74.5) projected
  line L24 (-113.35, 74.5) -> (113.35, 74.5) projected
  line L25 (-113.35, -74.5) -> (-113.35, 74.5) projected
  line L26 (113.35, -74.5) -> (-113.35, -74.5) projected
  line L27 (-113.35, 74.5) -> (113.35, 74.5)
  line L28 (113.35, 74.5) -> (113.35, -74.5)
  line L29 (113.35, -74.5) -> (-113.35, -74.5)
  line L30 (-113.35, -74.5) -> (-113.35, 74.5)
  point P0 (0, 0)
extrude "ExtrusionForBottom" add sketch "Sketch39" along normal blind 14
sketch "Sketch40" plane through (113.35, -74.5, -50) normal (1, 0, 0) x (0, 0, -1)
  line L0 (-50, 0) -> (14, 0) construction
  line L1 (7, 0) -> (7, 149) construction
  line L2 (-50, 149) -> (14, 149) construction
  line L3 (14, 149) -> (14, 0) construction
  point P0 (-50, 74.5)
  point P1 (7, 40)
  point P2 (7, 109)
  dimension "d234" = 7
  dimension "d235" = 40
  dimension "d236" = 40
hole "1-4 holesToBoltFixture" at (113.35, -34.5, -57) at (113.35, 34.5, -57) direction (-1, 0, 0) diameter 7.142 end through all counterbore diameter 12 counterbore depth 5 clearance for "Hex Machine Screw" size "1/4" standard "Ansi Unified Screw Threads"
ref_plane "Work Plane1" through (30, 0, 0) normal (1, 0, 0) x (0, 1, 0)
ref_plane "Work Plane2" through (-20, 0, 0) normal (1, 0, 0) x (0, 1, 0)
mirror "Mirror4" about plane through (0, 0, 0) normal (1, 0, 0) of "1-4 holesToBoltFixture"
sketch "Sketch43" plane through (113.35, -74.5, -50) normal (1, 0, 0) x (0, 0, -1)
  circle A0 centre (7, 40) radius 6 projected
  circle A1 centre (7, 109) radius 6 projected
  line L0 (-50, 66.5) -> (-50, 0) projected
  line L1 (-50, 0) -> (14, 0) projected
  line L2 (14, 149) -> (14, 0) projected
  line L3 (-50, 149) -> (14, 149) projected
  line L4 (-50, 149) -> (-50, 82.5) projected
  line L5 (-50, 82.5) -> (-26, 82.5) projected
  arc A2 (-26, 66.5) -> (-26, 82.5) centre (-26, 74.5) ccw projected
  line L6 (-26, 66.5) -> (-50, 66.5) projected
  circle A3 centre (-29, 74.5) radius 26.125
  circle A4 centre (-29, 74.5) radius 23.5
  point P0 (-50, 74.5)
  point P1 (-50, 85.0475)
  point P2 (-50, 63.9525)
  point P3 (-50, 58.9592)
  point P4 (-50, 90.0408)
  dimension "d255" = 21
  dimension "d256" = 52.25
  dimension "d257" = 47
extrude "CutOutForFilter" cut sketch "Sketch43" against normal blind 2.25 contours A4 L4 A3 L0 picked at (-35.0652, 51.0112)
sketch "Sketch47" plane through (113.35, -74.5, -50) normal (1, 0, 0) x (0, 0, -1)
  arc A0 (-50, 58.9592) -> (-50, 90.0408) centre (-29, 74.5) ccw projected
  line L0 (-50, 58.9592) -> (-50, 0) projected
  line L1 (-50, 0) -> (14, 0) projected
  line L2 (14, 149) -> (14, 0) projected
  line L3 (-50, 149) -> (14, 149) projected
  line L4 (-50, 149) -> (-50, 90.0408) projected
  circle A1 centre (7, 40) radius 6 projected
  circle A2 centre (7, 109) radius 6 projected
  line L5 (-13, 149) -> (-13, 0) construction
  line L6 (-50, 0) -> (14, 0) construction
  point P0 (-50, 74.5)
  point P1 (-13, 144)
  point P2 (-13, 5)
  dimension "d293" = 27
  dimension "d294" = 5
  dimension "d295" = 5
hole "Hole13" at (113.35, 69.5, -37) at (113.35, -69.5, -37) direction (-1, 0, 0) diameter 4.699 depth 7.1374 counterbore diameter 4.8514 counterbore depth 5.5524
sketch "Sketch46" plane through (-113.35, -74.5, 0) normal (0, -1, 0) x (1, 0, 0)
  line L0 (0, 0) -> (226.7, 0) projected
  line L1 (0, 0) -> (0, -64) projected
  line L2 (226.7, -64) -> (0, -64) projected
  line L3 (143.35, 12.8) -> (143.35, -76.8) projected
  line L4 (93.35, 12.8) -> (93.35, -76.8) projected
  line L5 (226.7, -24) -> (226.7, -32) construction
  line L6 (0, -32) -> (226.7, -32) construction
  line L7 (135.35, -32) -> (151.35, -16)
  line L8 (151.35, -16) -> (143.35, -8)
  line L9 (135.35, -32) -> (151.35, -48)
  line L10 (151.35, -48) -> (143.35, -56)
  line L11 (143.35, -8) -> (143.35, -56)
  line L12 (101.35, -32) -> (85.35, -16)
  line L13 (85.35, -16) -> (93.35, -8)
  line L14 (101.35, -32) -> (85.35, -48)
  line L15 (85.35, -48) -> (93.35, -56)
  line L16 (93.35, -56) -> (93.35, -8)
  line L17 (93.35, -56) -> (93.35, -40)
  line L18 (93.35, -64) -> (93.35, 0) projected
  line L19 (226.7, 0) -> (226.7, -64) projected
  point P0 (113.35, 0)
  point P1 (143.35, -40)
  point P2 (143.35, -24)
  point P3 (93.35, -24)
  dimension "d264" = 90
  dimension "d265" = 90
  dimension "d266" = 90
  dimension "d267" = 8
  dimension "d268" = 8
  dimension "d269" = 8
  dimension "d270" = 8
  dimension "d271" = 90
  dimension "d272" = 90
  dimension "d273" = 90
split "Split6" plane through (-20, 0, 0) removes the side toward (-1, 0, 0)
split "Split7" plane through (30, 0, 0) removes the side toward (1, 0, 0)
sketch "Sketch48" plane through (30, -74.5, -64) normal (1, 0, 0) x (0, 0, -1)
  circle A0 centre (-7, 40) radius 3.571 projected
  circle A1 centre (-7, 109) radius 3.571 projected
  point P0 (-64, 74.5)
hole "Hole14" at (30, -34.5, -57) at (30, 34.5, -57) direction (-1, 0, 0) diameter 8 depth 12.75 counterbore diameter 9.52 counterbore depth 9.9
sketch "Sketch50" plane through (-20, -74.5, -64) normal (-1, 0, 0) x (0, 0, 1)
  circle A0 centre (7, 109) radius 4 projected
  circle A1 centre (7, 40) radius 3.571 projected
  point P0 (64, 74.5)
hole "Hole15" at (-20, 34.5, -57) at (-20, -34.5, -57) direction (1, 0, 0) diameter 8 depth 12.75 counterbore diameter 9.52 counterbore depth 9.9
equation "\"d0\" = newCaseLength"
equation "\"d1\" = caseWidth"
equation "\"d2\" = caseDepth"
equation "\"d5\" = lensLength"
equation "\"d6\" = cameraWidth"
equation "\"d7\" = cameraLength"
equation "\"d8\" = maxComponentDepth"
equation "\"d13\" = fanDepth"
equation "\"d14\" = fanWidth"
equation "\"d15\" = rearWallThickness"
equation "\"d16\" = maxComponentDepth"
equation "\"d20\" = piCaseDepth"
equation "\"d21\" = piCaseLength"
equation "\"d88\" = minDelta"
equation "\"d22\" = maxComponentDepth"
equation "\"d25\" = minDelta"
equation "\"d26\" = poeWidth"
equation "\"d27\" = poeLength"
equation "\"d28\" = maxComponentDepth"
equation "\"d36\" = thermisterLength"
equation "\"d37\" = thermisterWidth"
equation "\"d85\" = frontWallThickness"
equation "\"d38\" = maxComponentDepth"
equation "\"d42\" = sensorLength"
equation "\"d43\" = sensorWidth"
equation "\"d86\" = frontWallThickness"
equation "\"d87\" = outsideWallThickness"
equation "\"d46\" = cutoutDepth"
equation "\"outsideWallThickness\" = 10"
equation "\"caseWidth\" = piCaseLength + 2 * outsideWallThickness"
equation "\"cameraWidth\" = 54"
equation "\"oneHalfCaseDepth\" = piCaseWidth"
equation "\"caseLength\" = 189.7"
equation "\"cameraLength\" = 59"
equation "\"lensLength\" = 15.7"
equation "\"piCaseWidth\" = 63"
equation "\"piCaseDepth\" = 32"
equation "\"poeDepth\" = 38"
equation "\"piEthernetCableReliefLength\" = 35"
equation "\"poeEthernetCableReliefLength\" = 35"
equation "\"thermisterDepth\" = 18"
equation "\"sensorDepth\" = 11"
equation "\"cutoutDepth\" = 0.5 * piCaseWidth"
equation "\"thickenDistance\" = 1"
equation "\"bottomOfCaseWallThickness\" = 3"
equation "\"rearWallThickness\" = 3"
equation "\"maxComponentDepth\" = extraCutoutDepth + 0.5 * piCaseWidth"
equation "\"caseDepth\" = maxComponentDepth + bottomOfCaseWallThickness"
equation "\"minDelta\" = 16"
equation "\"fanCutoutDepth\" = 0.5 * fanLength + extraCutoutDepth + thickenDistance"
equation "\"newCaseLength\" = 222.7"
equation "\"frontWallThickness\" = 3"
equation "\"d95\" = lensDiameter"
equation "\"extraCutoutDepth\" = 15.5"
equation "\"bottomExtrusion\" = 14"
equation "\"fanDepth\" = 16"
equation "\"fanWidth\" = 62"
equation "\"piCaseLength\" = 129"
equation "\"poeWidth\" = 49"
equation "\"poeLength\" = 118"
equation "\"thermisterLength\" = 69"
equation "\"thermisterWidth\" = 28"
equation "\"sensorLength\" = 50"
equation "\"sensorWidth\" = 17"
equation "\"fanLength\" = 60"
equation "\"lensDiameter\" = 15"
properties part number "caseLowerPortionMiddle" material "PC/ABS Plastic"
